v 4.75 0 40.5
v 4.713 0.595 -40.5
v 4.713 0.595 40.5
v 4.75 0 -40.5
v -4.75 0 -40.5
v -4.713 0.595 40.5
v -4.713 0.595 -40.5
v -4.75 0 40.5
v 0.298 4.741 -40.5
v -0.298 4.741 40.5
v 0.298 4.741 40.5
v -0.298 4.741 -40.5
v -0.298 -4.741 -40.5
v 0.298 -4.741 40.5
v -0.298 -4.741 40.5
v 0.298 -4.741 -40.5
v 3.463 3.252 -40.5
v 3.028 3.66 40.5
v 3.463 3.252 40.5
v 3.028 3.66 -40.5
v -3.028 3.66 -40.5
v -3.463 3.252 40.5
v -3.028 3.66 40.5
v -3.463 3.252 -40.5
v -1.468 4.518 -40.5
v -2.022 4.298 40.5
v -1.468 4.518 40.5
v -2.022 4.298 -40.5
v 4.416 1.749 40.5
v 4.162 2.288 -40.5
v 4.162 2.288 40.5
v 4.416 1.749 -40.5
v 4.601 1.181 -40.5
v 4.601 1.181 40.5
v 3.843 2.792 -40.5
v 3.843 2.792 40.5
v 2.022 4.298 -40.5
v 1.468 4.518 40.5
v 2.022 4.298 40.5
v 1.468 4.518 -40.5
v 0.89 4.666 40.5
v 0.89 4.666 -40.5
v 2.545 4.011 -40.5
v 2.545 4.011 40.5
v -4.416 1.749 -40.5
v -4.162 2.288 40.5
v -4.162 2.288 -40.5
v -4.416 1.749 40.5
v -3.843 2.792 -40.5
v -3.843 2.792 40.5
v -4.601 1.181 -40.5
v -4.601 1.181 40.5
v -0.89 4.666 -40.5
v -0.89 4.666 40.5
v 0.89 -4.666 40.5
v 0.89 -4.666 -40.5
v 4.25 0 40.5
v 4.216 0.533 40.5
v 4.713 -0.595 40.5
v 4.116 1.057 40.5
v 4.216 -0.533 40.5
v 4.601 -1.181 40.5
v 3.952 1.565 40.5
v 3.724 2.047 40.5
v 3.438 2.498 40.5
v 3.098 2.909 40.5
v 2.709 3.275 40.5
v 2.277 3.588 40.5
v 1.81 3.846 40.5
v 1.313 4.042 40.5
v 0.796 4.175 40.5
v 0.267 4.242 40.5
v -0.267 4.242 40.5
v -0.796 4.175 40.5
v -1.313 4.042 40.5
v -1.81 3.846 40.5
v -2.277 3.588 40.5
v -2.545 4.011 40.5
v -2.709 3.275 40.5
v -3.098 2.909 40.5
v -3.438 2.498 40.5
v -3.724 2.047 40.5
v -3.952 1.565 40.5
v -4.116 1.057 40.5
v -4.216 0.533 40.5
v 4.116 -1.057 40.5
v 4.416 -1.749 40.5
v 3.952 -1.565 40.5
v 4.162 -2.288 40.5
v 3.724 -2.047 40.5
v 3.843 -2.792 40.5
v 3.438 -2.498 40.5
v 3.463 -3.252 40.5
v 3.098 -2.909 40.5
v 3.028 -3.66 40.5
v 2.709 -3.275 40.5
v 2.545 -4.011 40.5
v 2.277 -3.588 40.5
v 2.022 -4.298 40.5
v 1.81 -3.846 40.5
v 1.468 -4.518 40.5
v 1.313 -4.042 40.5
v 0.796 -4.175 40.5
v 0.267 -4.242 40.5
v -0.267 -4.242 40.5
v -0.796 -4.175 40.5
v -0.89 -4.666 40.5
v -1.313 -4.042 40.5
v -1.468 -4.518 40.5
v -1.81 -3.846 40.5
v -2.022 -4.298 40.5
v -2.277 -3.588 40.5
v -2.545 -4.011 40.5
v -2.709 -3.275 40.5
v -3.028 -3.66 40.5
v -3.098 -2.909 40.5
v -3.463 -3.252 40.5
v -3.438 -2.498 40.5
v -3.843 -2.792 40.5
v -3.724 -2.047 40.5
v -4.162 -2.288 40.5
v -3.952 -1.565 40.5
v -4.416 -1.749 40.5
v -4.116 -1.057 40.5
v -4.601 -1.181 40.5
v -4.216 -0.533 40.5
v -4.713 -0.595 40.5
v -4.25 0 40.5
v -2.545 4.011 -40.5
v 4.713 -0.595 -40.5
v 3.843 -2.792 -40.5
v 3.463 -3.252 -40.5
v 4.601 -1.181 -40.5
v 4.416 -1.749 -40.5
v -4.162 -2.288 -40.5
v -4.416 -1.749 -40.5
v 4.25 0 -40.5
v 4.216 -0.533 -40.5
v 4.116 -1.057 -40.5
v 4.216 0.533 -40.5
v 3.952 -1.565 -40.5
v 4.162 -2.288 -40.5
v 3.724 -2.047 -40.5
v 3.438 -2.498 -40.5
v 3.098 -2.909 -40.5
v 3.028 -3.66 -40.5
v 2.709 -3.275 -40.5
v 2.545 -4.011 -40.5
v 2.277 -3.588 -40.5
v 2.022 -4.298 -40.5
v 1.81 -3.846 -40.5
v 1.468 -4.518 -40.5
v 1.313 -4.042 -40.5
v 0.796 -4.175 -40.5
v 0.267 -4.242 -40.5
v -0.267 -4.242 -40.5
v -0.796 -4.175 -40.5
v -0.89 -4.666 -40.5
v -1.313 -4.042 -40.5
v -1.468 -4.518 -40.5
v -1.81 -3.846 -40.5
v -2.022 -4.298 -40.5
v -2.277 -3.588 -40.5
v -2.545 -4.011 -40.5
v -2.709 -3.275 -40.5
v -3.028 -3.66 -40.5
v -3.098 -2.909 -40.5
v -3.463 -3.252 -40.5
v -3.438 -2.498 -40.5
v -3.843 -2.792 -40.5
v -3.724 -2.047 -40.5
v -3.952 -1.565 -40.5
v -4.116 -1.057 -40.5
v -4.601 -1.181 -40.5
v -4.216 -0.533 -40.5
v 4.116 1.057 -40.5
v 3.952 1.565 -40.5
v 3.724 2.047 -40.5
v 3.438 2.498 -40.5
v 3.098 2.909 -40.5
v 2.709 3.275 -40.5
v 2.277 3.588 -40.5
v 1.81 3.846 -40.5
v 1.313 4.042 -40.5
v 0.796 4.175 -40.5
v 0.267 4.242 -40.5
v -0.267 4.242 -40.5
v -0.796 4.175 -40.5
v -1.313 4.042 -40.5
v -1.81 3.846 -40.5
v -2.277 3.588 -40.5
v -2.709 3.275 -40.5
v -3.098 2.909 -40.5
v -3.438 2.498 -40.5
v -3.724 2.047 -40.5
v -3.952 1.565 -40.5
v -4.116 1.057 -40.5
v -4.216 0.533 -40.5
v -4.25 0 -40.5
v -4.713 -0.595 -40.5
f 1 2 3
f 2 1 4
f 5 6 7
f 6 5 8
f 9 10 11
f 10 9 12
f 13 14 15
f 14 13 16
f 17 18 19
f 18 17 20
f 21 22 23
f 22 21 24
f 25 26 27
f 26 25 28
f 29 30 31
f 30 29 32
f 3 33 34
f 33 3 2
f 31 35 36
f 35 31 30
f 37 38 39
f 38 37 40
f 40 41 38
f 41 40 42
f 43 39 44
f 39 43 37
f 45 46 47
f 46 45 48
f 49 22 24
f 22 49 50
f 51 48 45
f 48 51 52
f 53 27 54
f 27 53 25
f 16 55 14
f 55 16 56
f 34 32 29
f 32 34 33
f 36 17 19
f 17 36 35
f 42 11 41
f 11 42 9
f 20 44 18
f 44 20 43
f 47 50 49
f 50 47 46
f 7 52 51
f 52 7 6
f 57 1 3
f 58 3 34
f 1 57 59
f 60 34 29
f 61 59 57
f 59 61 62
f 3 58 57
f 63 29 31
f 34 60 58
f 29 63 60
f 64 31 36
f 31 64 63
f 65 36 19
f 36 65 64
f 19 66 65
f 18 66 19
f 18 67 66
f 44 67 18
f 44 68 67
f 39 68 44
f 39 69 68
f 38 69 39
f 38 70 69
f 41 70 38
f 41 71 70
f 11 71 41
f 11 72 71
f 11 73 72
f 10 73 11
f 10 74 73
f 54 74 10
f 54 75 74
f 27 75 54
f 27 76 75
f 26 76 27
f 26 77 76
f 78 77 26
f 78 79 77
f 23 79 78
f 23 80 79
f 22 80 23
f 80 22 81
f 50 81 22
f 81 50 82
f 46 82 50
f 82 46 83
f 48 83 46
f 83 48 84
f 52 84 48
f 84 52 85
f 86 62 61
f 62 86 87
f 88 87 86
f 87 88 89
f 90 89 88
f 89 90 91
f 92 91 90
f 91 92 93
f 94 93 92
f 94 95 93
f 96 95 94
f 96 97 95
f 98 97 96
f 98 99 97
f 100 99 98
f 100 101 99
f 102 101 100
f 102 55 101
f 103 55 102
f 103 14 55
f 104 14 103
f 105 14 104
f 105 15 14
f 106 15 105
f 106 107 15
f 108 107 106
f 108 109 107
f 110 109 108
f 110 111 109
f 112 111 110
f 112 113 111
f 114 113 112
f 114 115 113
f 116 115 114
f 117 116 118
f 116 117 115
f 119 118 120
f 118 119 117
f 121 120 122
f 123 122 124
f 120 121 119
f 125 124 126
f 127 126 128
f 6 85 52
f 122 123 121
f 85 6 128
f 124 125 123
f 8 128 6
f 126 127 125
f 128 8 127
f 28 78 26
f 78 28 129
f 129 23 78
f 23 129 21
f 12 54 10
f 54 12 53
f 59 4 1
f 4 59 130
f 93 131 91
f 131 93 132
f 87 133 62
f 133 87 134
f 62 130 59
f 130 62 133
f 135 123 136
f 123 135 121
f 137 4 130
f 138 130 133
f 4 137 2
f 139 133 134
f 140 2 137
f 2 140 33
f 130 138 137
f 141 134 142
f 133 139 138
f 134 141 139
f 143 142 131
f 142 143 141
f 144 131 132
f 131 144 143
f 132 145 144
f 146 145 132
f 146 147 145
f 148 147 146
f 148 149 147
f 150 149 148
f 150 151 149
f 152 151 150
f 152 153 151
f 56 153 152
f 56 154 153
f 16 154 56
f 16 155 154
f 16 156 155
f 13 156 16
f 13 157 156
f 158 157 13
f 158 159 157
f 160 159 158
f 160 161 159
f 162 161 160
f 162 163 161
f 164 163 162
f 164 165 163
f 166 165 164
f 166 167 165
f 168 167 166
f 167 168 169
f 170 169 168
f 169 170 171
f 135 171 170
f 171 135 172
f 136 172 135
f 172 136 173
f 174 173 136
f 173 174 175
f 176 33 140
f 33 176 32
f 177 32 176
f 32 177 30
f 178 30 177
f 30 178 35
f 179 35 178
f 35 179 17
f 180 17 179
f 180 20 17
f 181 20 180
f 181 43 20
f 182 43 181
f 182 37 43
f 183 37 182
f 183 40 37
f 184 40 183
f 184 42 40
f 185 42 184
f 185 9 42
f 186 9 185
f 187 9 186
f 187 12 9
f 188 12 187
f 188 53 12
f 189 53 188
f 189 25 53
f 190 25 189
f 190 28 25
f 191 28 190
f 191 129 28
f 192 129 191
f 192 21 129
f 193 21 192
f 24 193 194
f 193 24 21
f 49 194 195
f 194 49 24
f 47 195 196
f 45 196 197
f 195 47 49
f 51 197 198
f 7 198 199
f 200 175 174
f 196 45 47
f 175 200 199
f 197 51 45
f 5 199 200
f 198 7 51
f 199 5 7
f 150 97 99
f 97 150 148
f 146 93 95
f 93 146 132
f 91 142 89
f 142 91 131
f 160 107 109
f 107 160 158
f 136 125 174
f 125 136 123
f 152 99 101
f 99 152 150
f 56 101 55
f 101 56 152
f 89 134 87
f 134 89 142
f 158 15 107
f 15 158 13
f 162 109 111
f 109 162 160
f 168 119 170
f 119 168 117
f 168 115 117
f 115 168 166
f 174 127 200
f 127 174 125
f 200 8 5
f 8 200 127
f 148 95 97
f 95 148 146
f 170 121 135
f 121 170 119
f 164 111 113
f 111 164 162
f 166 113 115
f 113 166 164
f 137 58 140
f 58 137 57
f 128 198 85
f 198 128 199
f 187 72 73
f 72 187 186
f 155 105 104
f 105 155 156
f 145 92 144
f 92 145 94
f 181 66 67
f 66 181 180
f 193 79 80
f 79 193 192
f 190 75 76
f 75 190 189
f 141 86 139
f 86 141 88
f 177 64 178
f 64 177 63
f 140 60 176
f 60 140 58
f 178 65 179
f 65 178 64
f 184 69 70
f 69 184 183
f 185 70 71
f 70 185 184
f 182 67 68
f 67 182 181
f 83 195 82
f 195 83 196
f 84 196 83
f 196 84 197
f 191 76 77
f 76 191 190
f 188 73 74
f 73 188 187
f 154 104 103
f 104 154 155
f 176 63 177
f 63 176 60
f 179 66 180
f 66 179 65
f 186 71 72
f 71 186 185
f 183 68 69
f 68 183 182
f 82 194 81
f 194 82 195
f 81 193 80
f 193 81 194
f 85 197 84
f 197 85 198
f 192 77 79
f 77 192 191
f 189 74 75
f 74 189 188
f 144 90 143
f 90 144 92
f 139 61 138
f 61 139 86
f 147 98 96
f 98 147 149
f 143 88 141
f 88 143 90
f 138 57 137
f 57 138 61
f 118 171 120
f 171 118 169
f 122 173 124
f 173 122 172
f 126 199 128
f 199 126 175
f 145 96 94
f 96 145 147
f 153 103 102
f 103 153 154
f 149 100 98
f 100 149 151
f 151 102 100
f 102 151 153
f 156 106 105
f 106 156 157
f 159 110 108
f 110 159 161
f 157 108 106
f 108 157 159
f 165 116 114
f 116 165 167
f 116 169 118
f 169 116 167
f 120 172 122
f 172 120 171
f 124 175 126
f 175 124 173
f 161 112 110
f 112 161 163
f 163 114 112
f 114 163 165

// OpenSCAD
$fn = 50;


difference() {
	union() {
		translate(v = [0, 0, -40.5000000000]) {
			cylinder(h = 81, r = 4.7500000000);
		}
	}
	union() {
		translate(v = [0, 0, -100.0000000000]) {
			cylinder(h = 200, r = 4.2500000000);
		}
	}
}
